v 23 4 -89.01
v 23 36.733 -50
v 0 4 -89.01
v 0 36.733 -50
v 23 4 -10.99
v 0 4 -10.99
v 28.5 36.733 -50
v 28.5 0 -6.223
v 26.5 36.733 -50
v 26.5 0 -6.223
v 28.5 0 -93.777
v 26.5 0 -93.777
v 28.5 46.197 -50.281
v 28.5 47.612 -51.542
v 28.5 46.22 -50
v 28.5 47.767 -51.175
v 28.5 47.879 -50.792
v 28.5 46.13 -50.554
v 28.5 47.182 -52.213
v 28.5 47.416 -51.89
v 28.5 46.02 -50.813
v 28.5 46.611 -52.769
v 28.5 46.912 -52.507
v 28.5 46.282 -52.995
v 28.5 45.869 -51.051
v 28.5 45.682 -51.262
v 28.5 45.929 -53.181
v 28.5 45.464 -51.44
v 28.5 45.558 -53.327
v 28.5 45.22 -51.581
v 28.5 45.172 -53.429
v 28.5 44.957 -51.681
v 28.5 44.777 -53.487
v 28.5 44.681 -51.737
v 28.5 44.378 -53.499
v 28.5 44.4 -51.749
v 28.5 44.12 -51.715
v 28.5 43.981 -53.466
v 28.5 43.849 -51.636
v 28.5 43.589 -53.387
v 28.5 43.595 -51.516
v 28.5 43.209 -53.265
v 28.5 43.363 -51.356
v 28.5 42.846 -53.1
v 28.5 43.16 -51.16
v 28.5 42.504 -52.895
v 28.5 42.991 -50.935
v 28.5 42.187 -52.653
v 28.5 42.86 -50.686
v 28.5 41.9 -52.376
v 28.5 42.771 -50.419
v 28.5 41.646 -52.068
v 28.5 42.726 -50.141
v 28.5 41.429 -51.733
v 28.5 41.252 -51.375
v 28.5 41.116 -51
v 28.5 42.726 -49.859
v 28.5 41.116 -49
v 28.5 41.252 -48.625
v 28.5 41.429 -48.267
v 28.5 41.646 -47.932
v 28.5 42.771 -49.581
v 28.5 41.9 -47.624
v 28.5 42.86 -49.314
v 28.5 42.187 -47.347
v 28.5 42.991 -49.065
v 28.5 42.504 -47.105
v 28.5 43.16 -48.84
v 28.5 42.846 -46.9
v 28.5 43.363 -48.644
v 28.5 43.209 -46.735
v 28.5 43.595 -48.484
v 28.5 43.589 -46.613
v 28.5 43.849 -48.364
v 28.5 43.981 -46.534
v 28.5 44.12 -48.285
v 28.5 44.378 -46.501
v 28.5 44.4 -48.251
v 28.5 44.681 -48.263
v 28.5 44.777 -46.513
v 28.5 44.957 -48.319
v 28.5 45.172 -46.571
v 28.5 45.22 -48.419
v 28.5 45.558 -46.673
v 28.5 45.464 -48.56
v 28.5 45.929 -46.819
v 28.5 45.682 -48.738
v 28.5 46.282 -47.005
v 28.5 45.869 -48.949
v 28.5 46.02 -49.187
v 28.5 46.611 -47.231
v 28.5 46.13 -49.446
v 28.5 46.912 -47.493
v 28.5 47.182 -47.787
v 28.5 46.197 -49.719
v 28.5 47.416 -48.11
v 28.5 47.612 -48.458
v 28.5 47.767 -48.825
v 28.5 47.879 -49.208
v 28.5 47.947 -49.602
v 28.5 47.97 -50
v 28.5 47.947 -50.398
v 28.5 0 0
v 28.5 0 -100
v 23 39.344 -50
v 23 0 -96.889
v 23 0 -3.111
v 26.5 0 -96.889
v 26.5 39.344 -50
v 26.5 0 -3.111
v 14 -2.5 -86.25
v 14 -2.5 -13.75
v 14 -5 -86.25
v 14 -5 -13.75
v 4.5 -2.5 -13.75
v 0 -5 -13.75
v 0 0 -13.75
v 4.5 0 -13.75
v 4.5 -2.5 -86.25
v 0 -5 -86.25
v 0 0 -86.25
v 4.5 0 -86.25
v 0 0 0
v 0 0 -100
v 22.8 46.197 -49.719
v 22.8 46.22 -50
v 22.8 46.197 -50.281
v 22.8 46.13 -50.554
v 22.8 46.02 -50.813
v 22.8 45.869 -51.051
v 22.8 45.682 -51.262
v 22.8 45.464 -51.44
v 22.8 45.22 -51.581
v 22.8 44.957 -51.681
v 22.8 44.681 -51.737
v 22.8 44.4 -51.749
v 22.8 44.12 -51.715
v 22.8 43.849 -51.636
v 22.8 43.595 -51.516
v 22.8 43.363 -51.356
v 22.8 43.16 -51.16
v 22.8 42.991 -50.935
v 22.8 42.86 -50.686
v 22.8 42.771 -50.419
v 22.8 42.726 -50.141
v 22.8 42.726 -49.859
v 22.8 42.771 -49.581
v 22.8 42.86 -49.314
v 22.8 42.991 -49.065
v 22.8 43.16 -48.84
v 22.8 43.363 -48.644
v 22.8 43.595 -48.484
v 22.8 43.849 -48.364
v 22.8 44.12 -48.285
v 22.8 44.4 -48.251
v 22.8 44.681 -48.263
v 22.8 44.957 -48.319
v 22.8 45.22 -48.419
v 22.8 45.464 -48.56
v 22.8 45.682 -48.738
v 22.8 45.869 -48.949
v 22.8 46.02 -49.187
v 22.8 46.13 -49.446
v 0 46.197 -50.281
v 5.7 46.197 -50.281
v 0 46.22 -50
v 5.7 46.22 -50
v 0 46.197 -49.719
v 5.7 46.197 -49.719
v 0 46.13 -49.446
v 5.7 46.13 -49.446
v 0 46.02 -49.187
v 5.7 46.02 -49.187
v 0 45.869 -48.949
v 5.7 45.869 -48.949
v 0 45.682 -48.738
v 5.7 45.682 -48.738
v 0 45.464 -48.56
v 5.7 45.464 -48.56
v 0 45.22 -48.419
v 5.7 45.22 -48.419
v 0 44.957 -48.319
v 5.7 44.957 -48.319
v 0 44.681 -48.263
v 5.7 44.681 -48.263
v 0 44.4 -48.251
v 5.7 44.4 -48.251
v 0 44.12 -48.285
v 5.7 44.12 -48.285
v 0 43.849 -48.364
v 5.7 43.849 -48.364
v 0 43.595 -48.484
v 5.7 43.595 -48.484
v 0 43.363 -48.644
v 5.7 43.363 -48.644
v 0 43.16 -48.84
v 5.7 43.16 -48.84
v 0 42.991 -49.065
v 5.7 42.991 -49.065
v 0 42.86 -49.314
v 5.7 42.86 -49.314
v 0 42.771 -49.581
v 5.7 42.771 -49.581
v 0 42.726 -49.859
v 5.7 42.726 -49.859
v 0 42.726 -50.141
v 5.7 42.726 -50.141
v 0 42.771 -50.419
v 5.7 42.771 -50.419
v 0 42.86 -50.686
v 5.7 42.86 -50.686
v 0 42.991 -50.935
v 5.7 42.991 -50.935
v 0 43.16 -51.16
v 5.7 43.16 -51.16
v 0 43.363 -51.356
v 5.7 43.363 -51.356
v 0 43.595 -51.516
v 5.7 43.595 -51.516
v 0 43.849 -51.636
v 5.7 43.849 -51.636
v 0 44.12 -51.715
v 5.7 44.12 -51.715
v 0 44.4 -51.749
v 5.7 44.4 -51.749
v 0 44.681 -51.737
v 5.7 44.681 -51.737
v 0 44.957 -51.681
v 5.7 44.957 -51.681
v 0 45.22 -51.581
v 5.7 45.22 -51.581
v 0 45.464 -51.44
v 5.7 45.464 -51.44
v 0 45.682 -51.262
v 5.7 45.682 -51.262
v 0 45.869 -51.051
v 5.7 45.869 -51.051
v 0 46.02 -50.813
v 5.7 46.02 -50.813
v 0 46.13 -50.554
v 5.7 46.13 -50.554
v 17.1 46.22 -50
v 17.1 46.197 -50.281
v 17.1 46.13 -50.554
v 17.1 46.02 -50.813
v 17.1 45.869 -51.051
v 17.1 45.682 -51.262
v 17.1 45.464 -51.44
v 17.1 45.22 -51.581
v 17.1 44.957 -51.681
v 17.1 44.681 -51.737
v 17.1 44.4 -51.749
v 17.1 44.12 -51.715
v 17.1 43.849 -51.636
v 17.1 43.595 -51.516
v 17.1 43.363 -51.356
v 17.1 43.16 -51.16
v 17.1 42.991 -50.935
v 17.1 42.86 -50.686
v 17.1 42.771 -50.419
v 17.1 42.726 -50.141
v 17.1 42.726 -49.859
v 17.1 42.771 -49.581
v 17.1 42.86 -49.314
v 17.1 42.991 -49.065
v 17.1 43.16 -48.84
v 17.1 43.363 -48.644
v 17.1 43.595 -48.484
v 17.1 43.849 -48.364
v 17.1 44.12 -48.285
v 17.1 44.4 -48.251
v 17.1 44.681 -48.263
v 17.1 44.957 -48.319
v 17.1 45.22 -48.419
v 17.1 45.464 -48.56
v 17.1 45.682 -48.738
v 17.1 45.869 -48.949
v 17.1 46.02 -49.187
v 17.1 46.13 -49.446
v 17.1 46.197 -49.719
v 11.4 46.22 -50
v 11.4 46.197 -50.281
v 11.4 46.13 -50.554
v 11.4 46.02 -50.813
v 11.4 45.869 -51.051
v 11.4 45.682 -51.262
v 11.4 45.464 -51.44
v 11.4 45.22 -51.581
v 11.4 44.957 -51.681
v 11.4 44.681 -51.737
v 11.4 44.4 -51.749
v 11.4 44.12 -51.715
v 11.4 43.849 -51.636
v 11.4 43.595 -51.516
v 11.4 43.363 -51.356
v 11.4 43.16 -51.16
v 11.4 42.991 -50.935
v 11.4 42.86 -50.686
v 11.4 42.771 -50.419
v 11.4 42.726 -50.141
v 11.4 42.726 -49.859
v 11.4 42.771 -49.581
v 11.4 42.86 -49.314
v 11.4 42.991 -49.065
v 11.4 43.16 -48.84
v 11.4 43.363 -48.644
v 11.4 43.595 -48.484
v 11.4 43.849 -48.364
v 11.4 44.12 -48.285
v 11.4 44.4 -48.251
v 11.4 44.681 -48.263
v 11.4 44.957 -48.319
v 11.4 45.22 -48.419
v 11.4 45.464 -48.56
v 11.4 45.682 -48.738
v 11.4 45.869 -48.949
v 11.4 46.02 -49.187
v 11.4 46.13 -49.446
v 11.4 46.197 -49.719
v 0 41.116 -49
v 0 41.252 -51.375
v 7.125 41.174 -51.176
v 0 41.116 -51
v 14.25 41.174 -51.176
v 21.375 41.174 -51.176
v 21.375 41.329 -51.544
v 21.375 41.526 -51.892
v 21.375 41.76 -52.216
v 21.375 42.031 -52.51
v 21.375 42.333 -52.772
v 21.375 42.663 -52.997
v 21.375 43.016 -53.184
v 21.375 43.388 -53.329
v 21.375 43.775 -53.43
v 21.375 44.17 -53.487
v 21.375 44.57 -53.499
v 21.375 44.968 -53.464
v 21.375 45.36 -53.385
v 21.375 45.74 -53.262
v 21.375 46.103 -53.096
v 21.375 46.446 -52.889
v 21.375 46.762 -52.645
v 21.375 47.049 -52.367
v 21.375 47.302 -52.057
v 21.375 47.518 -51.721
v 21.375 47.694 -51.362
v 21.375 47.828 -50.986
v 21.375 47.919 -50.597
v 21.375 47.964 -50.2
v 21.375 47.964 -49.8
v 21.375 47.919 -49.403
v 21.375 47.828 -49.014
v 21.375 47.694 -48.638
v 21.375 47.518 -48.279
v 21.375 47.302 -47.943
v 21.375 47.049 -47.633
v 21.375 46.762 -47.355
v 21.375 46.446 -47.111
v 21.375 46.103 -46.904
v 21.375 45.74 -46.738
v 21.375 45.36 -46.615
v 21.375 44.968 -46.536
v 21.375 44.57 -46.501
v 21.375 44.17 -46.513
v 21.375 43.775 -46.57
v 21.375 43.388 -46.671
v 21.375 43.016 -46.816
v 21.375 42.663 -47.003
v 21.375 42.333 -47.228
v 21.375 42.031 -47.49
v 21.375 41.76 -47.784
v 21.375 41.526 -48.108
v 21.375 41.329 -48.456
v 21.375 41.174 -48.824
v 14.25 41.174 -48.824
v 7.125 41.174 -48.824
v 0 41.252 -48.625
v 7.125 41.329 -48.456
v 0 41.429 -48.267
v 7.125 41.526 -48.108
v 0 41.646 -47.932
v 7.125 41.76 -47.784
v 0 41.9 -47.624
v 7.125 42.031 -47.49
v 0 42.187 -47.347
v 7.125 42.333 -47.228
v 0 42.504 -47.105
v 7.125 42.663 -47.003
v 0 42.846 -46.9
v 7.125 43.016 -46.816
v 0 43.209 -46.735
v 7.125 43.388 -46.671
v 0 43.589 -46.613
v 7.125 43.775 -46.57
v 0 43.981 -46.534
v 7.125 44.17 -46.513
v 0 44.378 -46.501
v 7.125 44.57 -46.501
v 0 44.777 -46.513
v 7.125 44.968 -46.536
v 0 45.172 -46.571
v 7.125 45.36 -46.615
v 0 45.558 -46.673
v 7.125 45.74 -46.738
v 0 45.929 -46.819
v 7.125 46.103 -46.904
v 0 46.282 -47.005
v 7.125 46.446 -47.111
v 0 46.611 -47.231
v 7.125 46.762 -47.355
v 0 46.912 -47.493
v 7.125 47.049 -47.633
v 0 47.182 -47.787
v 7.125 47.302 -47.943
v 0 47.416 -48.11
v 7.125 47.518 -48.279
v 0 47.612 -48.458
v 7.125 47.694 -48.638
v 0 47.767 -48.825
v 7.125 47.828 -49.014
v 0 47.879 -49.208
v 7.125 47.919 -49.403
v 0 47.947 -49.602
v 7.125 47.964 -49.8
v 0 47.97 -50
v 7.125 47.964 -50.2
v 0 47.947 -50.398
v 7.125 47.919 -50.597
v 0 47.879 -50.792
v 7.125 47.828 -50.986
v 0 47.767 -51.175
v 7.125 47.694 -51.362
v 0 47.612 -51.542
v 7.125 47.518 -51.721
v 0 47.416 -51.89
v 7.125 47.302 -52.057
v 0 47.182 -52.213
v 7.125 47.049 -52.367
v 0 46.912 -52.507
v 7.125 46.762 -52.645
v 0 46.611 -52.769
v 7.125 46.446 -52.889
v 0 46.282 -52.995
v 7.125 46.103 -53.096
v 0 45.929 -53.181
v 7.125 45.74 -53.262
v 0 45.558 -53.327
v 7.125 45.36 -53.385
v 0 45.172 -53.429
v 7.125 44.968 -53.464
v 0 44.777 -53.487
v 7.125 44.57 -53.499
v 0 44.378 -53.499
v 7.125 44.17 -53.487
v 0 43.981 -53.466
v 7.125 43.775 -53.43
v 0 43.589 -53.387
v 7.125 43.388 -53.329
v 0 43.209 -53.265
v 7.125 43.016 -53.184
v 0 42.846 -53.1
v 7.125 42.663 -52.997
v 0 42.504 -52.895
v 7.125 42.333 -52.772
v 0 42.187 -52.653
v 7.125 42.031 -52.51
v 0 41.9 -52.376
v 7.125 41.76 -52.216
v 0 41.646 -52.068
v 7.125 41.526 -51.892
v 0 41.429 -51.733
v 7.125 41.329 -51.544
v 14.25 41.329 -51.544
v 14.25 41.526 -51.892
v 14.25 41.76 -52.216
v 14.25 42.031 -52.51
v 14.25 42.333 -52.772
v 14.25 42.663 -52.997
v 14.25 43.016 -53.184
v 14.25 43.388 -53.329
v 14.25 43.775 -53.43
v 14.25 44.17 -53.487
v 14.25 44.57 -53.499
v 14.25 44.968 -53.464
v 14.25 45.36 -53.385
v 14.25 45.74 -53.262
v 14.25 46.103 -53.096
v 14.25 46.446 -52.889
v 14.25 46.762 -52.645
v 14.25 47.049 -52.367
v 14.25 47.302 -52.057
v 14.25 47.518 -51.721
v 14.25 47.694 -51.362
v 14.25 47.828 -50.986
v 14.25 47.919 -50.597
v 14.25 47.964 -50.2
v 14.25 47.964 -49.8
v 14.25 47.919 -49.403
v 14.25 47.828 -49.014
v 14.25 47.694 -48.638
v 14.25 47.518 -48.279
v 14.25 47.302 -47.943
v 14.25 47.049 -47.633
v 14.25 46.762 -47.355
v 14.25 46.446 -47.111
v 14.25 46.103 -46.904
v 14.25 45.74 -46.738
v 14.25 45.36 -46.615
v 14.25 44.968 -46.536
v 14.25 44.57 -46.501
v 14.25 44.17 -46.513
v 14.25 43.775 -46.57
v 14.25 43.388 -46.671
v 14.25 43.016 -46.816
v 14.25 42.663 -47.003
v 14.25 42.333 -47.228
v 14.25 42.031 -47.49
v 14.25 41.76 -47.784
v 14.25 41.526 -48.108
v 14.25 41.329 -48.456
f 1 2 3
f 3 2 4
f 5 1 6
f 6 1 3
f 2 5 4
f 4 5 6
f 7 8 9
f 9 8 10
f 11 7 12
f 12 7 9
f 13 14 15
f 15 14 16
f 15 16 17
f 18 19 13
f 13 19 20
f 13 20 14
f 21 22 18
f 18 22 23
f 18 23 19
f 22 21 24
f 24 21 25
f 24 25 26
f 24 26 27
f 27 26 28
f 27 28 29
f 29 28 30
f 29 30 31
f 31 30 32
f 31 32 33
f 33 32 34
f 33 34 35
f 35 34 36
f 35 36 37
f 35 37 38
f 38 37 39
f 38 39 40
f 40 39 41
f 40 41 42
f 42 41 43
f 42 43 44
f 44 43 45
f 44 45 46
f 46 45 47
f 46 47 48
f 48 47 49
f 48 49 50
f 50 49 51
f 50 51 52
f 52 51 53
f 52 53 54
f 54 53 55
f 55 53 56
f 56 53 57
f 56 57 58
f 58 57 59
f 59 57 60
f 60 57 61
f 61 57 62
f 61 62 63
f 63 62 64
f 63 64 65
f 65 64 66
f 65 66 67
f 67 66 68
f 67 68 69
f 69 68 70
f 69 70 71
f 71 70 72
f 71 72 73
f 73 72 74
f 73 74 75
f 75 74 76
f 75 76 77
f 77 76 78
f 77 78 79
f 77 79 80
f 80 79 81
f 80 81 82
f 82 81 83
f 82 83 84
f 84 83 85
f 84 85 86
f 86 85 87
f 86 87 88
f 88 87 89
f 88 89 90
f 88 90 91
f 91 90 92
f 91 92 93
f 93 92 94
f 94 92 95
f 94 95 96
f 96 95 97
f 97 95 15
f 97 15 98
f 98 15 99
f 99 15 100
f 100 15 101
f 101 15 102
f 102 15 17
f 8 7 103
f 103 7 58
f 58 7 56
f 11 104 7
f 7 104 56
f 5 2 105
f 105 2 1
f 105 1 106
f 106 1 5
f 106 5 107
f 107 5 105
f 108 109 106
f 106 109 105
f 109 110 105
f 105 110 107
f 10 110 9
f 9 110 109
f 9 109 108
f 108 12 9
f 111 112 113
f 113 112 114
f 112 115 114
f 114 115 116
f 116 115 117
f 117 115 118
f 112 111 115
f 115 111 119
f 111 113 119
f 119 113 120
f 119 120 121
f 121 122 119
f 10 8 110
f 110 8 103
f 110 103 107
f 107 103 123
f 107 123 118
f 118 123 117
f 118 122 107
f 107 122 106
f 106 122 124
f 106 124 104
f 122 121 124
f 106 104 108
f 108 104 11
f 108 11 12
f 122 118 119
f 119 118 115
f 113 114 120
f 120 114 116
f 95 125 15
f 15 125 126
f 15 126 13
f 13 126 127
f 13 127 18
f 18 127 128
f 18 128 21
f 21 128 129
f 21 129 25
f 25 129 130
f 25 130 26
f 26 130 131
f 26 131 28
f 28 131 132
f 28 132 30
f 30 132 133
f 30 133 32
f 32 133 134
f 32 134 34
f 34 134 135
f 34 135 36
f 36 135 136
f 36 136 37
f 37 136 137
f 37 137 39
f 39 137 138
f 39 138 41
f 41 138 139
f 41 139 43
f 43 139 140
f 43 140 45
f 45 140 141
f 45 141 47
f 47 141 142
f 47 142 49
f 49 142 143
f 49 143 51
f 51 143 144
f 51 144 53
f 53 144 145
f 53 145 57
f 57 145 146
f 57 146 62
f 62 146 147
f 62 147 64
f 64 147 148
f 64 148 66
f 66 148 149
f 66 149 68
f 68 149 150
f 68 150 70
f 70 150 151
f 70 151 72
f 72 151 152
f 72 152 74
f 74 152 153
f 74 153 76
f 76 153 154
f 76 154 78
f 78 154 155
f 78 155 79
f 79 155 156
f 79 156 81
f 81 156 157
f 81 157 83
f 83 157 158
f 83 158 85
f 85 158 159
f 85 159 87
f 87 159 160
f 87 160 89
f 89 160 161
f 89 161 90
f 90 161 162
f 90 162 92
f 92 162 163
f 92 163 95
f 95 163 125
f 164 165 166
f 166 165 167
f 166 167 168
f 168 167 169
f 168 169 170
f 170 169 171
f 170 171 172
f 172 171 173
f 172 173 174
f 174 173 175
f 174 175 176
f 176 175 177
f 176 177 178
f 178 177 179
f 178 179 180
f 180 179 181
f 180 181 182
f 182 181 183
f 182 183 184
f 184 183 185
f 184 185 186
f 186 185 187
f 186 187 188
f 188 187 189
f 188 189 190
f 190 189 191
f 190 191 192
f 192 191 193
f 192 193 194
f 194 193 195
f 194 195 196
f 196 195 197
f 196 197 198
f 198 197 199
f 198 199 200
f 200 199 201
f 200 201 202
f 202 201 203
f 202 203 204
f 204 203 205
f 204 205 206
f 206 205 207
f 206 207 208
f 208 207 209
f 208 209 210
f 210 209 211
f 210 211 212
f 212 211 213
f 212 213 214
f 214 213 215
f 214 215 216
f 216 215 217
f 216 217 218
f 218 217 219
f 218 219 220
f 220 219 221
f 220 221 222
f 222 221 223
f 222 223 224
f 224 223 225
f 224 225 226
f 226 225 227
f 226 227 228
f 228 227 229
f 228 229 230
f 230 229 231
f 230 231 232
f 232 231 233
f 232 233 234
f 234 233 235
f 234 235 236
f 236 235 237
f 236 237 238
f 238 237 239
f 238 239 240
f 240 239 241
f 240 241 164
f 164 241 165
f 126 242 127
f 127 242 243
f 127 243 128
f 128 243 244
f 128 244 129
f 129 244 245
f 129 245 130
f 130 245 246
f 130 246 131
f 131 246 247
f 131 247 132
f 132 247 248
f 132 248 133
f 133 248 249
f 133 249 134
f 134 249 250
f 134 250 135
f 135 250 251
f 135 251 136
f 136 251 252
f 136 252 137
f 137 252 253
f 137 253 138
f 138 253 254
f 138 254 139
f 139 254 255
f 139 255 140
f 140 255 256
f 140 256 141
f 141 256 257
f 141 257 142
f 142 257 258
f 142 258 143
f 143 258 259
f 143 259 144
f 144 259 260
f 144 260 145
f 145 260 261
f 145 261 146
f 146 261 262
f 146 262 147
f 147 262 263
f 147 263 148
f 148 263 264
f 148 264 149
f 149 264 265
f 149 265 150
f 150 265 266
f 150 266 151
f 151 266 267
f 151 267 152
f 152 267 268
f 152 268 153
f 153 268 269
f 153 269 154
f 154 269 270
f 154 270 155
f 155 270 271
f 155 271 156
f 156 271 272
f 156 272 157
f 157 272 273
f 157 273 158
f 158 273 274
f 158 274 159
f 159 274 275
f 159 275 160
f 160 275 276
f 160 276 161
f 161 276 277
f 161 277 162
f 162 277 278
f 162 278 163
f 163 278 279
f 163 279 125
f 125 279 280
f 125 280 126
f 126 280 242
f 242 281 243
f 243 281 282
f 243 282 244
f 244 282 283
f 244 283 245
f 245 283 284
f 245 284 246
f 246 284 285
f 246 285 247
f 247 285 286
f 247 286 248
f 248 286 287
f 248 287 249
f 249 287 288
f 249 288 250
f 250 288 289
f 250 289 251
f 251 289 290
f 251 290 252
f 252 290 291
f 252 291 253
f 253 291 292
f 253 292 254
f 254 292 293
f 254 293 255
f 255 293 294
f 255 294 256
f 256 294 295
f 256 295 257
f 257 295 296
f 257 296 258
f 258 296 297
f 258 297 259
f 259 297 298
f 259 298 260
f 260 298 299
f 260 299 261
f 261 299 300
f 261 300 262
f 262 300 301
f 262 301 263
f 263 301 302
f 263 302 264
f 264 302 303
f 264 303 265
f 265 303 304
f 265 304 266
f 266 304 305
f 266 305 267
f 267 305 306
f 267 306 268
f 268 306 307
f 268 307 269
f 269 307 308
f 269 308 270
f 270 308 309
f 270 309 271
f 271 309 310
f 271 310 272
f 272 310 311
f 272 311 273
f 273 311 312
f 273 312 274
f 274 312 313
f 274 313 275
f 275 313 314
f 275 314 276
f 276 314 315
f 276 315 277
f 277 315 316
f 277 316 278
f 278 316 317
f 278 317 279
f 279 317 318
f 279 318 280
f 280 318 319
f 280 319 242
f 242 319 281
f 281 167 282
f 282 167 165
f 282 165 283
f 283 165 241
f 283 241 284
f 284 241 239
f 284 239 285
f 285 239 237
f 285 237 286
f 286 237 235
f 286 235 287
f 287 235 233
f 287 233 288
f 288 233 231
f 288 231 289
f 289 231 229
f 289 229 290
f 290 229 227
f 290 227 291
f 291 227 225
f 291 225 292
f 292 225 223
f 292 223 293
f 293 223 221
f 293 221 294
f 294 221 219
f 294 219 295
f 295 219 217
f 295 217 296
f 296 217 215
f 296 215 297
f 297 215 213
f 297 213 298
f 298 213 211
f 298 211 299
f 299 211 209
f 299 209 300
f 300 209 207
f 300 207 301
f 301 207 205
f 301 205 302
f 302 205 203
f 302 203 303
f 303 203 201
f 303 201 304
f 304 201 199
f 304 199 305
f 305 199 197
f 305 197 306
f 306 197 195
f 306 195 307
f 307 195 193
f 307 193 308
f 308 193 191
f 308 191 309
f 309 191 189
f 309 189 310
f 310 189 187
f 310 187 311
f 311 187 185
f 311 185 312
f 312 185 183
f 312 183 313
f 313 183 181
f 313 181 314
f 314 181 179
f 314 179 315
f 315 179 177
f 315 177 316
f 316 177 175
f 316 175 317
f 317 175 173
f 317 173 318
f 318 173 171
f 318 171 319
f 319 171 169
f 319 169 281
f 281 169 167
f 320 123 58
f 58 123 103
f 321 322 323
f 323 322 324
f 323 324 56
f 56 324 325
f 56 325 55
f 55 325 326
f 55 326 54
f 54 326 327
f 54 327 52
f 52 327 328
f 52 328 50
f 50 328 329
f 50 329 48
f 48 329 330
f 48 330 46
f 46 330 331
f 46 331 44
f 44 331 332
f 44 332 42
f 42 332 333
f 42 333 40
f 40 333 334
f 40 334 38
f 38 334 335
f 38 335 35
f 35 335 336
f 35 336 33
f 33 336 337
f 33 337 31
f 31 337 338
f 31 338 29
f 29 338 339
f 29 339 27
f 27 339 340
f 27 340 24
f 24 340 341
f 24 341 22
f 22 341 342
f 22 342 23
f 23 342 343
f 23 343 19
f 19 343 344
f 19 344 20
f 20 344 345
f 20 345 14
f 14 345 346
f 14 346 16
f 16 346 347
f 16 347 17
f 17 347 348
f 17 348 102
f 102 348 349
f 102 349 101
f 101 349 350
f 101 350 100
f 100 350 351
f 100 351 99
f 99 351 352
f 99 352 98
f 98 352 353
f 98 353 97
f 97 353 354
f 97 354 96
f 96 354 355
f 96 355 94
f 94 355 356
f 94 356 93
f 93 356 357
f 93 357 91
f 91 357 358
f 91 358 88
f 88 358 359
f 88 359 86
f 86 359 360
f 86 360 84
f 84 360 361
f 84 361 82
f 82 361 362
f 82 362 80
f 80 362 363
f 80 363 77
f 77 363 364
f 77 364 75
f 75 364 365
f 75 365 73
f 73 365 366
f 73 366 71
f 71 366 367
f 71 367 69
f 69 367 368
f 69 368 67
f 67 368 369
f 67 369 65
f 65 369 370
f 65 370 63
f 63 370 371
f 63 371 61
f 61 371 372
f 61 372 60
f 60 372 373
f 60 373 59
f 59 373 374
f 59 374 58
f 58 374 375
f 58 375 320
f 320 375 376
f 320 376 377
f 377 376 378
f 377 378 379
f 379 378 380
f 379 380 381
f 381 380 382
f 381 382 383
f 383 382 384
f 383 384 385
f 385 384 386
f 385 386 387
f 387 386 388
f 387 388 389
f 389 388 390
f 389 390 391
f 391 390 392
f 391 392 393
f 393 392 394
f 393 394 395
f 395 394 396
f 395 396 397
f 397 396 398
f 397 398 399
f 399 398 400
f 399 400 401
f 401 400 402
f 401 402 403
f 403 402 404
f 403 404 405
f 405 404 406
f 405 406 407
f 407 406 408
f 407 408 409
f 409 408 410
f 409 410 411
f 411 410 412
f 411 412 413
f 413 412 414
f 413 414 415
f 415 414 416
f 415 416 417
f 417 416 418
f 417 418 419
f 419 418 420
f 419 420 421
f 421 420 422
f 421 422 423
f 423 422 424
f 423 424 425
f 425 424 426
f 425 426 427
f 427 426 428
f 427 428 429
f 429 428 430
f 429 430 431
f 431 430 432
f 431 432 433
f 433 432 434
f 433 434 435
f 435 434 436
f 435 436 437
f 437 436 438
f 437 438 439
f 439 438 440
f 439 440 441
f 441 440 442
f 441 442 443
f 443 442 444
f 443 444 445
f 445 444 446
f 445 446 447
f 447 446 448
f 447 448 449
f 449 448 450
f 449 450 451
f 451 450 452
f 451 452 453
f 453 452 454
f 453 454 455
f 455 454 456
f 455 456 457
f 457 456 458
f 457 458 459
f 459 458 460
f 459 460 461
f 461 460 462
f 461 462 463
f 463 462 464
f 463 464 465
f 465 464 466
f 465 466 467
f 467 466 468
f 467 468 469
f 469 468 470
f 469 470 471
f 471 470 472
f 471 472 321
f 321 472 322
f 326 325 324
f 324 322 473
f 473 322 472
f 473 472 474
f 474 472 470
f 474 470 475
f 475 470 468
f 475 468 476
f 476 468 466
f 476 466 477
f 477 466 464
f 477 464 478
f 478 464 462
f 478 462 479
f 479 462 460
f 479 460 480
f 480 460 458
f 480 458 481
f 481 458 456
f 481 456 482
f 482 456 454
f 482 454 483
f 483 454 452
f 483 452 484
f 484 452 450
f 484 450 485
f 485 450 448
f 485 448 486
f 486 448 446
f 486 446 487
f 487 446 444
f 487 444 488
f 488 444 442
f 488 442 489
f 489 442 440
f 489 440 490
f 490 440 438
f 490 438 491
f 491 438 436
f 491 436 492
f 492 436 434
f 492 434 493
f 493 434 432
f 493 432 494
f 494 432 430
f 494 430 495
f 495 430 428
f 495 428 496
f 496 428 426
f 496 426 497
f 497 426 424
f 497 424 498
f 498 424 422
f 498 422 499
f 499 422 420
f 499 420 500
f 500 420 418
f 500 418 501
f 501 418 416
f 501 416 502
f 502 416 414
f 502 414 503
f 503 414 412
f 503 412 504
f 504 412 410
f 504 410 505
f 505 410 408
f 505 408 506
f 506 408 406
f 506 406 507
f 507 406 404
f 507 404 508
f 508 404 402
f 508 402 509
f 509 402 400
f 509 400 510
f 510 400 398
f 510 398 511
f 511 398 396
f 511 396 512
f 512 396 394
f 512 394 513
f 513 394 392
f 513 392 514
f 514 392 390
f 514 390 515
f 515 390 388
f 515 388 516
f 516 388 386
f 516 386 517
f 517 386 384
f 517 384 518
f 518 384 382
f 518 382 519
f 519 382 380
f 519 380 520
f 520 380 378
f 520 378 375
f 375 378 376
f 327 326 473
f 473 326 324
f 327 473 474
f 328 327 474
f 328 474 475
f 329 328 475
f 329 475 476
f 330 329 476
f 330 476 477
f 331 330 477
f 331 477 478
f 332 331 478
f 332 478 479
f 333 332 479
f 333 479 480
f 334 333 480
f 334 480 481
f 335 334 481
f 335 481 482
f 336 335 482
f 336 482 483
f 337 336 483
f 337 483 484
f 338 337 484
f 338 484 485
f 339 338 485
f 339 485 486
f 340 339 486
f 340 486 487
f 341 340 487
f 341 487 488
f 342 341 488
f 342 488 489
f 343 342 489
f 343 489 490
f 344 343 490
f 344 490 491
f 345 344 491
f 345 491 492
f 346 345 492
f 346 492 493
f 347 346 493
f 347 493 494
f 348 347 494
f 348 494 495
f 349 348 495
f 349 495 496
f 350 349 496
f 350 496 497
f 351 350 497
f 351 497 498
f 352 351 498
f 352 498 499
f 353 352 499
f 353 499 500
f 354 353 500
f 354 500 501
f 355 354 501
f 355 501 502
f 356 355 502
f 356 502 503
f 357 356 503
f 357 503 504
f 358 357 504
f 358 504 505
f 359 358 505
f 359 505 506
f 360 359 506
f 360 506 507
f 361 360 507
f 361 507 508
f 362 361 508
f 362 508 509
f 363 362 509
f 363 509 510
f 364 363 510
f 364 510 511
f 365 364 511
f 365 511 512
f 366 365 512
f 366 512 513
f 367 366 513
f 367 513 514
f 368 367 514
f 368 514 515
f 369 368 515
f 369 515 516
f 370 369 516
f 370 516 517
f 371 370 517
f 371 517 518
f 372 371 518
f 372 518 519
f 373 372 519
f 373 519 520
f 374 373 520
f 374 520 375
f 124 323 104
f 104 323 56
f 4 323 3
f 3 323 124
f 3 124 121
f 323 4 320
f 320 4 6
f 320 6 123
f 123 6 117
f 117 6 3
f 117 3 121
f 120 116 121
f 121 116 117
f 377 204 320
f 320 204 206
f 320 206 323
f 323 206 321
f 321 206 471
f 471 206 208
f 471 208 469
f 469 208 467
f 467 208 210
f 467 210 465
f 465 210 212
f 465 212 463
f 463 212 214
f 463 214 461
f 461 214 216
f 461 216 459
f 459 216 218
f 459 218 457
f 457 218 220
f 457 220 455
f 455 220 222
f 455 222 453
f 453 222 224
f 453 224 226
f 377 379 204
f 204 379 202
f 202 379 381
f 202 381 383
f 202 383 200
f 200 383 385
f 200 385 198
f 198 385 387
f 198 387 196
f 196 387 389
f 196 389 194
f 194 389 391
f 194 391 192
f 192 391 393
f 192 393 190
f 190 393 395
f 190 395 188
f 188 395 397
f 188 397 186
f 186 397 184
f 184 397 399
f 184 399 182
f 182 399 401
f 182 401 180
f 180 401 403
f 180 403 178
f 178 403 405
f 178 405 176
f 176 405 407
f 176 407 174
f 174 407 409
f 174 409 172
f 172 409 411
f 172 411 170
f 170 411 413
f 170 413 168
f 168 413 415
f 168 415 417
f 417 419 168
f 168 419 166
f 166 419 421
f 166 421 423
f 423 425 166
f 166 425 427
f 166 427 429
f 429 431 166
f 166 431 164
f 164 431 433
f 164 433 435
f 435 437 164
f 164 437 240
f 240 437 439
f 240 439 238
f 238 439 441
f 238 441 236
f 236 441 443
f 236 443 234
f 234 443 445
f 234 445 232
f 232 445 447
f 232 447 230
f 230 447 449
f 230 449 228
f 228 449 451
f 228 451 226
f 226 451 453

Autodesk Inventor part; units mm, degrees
ref_plane "YZ Plane" through (0, 0, 0) normal (1, 0, 0) x (0, 1, 0)
ref_plane "XZ Plane" through (0, 0, 0) normal (0, 1, 0) x (-1, 0, 0)
sketch "Skizze1" plane through (0, 0, 0) normal (1, 0, 0) x (0, 1, 0)
  line L0 (0, 0) -> (0, -100)
  line L1 (0, -100) -> (41.1159, -51)
  line L2 (0, 0) -> (41.1159, -49)
  circle A0 centre (44.47, -50) radius 3.5
  circle A1 centre (44.47, -50) radius 1.75
  dimension "d0" = 40
  dimension "d1" = 3.5
  dimension "d2" = 7
  dimension "d3" = 2
  dimension "d4" = 100
extrude "Extrusion1" add sketch "Skizze1" along normal blind 28.5
sketch "Skizze2" plane through (0, 0, -100) normal (0, -1, 0) x (1, 0, 0)
  line L0 (0, 100) -> (0, 0) projected
  line L1 (0, 0) -> (28.5, 0) projected
  line L2 (28.5, 100) -> (28.5, 0) projected
  line L3 (0, 100) -> (28.5, 100) projected
extrude "Extrusion2" add sketch "Skizze2" along normal blind 5
sketch "Skizze3" plane through (28.5, 0, 0) normal (1, 0, 0) x (0, 0, -1)
  line L0 (100, 0) -> (51, 41.1159) projected
  arc A0 (51, 41.1159) -> (49, 41.1159) centre (50, 44.47) ccw projected
  line L1 (49, 41.1159) -> (0, 0) projected
  line L2 (0, 0) -> (0, -5) projected
  line L3 (100, -5) -> (0, -5) projected
  line L4 (100, 0) -> (100, -5) projected
  circle A1 centre (50, 44.47) radius 1.75 projected
  line L5 (49, 41.1159) -> (0, 0) projected
  line L6 (0, 0) -> (100, 0)
  line L7 (0, 0) -> (0, -5) projected
  line L8 (0, -2.5) -> (100, -2.5)
extrude "Extrusion3" cut sketch "Skizze3" against normal blind 24 contours L4 L8 L2 L6
sketch "Skizze4" plane through (28.5, 0, 0) normal (1, 0, 0) x (0, 0, -1)
  line L0 (0, 0) -> (100, 0) projected
  line L1 (100, -5) -> (0, -5) projected
  line L2 (0, 0) -> (13.75, 0)
  line L3 (13.75, 0) -> (13.75, -5)
  line L4 (13.75, -5) -> (0, -5)
  line L5 (0, -5) -> (0, 0)
  line L6 (100, 0) -> (51, 41.1159) projected
  line L7 (100, 0) -> (86.25, 0)
  line L8 (86.25, 0) -> (86.25, -5)
  line L9 (86.25, -5) -> (100, -5)
  line L10 (100, -5) -> (100, 0)
  dimension "d11" = 72.5
extrude "Extrusion4" cut sketch "Skizze4" against normal through all contours L0 L3 L1 L5 | L0 L10 L1 L8
sketch "Skizze5" plane through (28.5, 0, 0) normal (1, 0, 0) x (0, 0, -1)
  line L0 (86.25, -5) -> (86.25, -2.5) projected
  line L1 (86.25, -2.5) -> (13.75, -2.5) projected
  line L2 (13.75, -2.5) -> (13.75, -5) projected
  line L3 (86.25, -5) -> (13.75, -5) projected
  point P0 (0, 0)
extrude "Extrusion5" cut sketch "Skizze5" against normal blind 14.5
ref_plane "Arbeitsebene1" through (26.5, 0, 0) normal (1, 0, 0) x (0, 0, -1)
sketch "Skizze6" plane through (26.5, 0, 0) normal (1, 0, 0) x (0, 0, -1)
  line L0 (49, 41.1159) -> (0, 0) projected
  line L1 (100, 0) -> (51, 41.1159) projected
  line L2 (13.75, 0) -> (0, 0) projected
  line L3 (13.75, 0) -> (86.25, 0) projected
  line L4 (100, 0) -> (86.25, 0) projected
  line L5 (3.1114, 0) -> (50, 39.3442)
  line L6 (50, 39.3442) -> (96.8886, 0)
  circle A0 centre (50, 44.47) radius 1.75 projected
  dimension "d17" = 2
extrude "Extrusion6" cut sketch "Skizze6" against normal blind 3.5 contours L2 L5 L6 L4 L3
sketch "Skizze7" plane through (23, 0, 0) normal (1, 0, 0) x (0, 0, -1)
  line L0 (96.8886, 0) -> (3.1114, 0) projected
  line L1 (50, 39.3442) -> (96.8886, 0) projected
  line L2 (3.1114, 0) -> (50, 39.3442) projected
  line L3 (96.8886, 0) -> (3.1114, 0) projected
  line L4 (6.2229, 0) -> (50, 36.7334)
  line L5 (50, 36.7334) -> (93.7771, 0)
  line L6 (100, 0) -> (86.25, 0) projected
  point P0 (0, 0)
  dimension "d20" = 2
extrude "Extrusion7" cut sketch "Skizze7" along normal through all contours L0 L4 L5
sketch "Skizze8" plane through (0, 0, 0) normal (-1, 0, 0) x (0, 0, 1)
  line L0 (-100, 0) -> (-86.25, 0) projected
  line L1 (-13.75, 0) -> (0, 0) projected
  line L2 (-13.75, 0) -> (-86.25, 0) projected
  line L3 (-49, 41.1159) -> (0, 0) projected
  line L4 (-100, 0) -> (-51, 41.1159) projected
  circle A0 centre (-50, 44.47) radius 1.75 projected
  line L5 (-93.7771, 0) -> (-96.8886, 0) projected
  line L6 (-50, 39.3442) -> (-96.8886, 0) projected
  line L7 (-92.1215, 4) -> (-7.8785, 4)
  line L8 (-3.1114, 0) -> (-50, 39.3442) projected
  line L9 (-93.7771, 0) -> (-50, 36.7334) projected
  line L10 (-50, 36.7334) -> (-6.2229, 0) projected
  point P0 (-10.9899, 4)
  point P1 (-89.0101, 4)
  dimension "d23" = 4
extrude "Extrusion8" cut sketch "Skizze8" against normal up to surface (23 mm away) contours L9 L10 L7
properties part number "roof_foot"
